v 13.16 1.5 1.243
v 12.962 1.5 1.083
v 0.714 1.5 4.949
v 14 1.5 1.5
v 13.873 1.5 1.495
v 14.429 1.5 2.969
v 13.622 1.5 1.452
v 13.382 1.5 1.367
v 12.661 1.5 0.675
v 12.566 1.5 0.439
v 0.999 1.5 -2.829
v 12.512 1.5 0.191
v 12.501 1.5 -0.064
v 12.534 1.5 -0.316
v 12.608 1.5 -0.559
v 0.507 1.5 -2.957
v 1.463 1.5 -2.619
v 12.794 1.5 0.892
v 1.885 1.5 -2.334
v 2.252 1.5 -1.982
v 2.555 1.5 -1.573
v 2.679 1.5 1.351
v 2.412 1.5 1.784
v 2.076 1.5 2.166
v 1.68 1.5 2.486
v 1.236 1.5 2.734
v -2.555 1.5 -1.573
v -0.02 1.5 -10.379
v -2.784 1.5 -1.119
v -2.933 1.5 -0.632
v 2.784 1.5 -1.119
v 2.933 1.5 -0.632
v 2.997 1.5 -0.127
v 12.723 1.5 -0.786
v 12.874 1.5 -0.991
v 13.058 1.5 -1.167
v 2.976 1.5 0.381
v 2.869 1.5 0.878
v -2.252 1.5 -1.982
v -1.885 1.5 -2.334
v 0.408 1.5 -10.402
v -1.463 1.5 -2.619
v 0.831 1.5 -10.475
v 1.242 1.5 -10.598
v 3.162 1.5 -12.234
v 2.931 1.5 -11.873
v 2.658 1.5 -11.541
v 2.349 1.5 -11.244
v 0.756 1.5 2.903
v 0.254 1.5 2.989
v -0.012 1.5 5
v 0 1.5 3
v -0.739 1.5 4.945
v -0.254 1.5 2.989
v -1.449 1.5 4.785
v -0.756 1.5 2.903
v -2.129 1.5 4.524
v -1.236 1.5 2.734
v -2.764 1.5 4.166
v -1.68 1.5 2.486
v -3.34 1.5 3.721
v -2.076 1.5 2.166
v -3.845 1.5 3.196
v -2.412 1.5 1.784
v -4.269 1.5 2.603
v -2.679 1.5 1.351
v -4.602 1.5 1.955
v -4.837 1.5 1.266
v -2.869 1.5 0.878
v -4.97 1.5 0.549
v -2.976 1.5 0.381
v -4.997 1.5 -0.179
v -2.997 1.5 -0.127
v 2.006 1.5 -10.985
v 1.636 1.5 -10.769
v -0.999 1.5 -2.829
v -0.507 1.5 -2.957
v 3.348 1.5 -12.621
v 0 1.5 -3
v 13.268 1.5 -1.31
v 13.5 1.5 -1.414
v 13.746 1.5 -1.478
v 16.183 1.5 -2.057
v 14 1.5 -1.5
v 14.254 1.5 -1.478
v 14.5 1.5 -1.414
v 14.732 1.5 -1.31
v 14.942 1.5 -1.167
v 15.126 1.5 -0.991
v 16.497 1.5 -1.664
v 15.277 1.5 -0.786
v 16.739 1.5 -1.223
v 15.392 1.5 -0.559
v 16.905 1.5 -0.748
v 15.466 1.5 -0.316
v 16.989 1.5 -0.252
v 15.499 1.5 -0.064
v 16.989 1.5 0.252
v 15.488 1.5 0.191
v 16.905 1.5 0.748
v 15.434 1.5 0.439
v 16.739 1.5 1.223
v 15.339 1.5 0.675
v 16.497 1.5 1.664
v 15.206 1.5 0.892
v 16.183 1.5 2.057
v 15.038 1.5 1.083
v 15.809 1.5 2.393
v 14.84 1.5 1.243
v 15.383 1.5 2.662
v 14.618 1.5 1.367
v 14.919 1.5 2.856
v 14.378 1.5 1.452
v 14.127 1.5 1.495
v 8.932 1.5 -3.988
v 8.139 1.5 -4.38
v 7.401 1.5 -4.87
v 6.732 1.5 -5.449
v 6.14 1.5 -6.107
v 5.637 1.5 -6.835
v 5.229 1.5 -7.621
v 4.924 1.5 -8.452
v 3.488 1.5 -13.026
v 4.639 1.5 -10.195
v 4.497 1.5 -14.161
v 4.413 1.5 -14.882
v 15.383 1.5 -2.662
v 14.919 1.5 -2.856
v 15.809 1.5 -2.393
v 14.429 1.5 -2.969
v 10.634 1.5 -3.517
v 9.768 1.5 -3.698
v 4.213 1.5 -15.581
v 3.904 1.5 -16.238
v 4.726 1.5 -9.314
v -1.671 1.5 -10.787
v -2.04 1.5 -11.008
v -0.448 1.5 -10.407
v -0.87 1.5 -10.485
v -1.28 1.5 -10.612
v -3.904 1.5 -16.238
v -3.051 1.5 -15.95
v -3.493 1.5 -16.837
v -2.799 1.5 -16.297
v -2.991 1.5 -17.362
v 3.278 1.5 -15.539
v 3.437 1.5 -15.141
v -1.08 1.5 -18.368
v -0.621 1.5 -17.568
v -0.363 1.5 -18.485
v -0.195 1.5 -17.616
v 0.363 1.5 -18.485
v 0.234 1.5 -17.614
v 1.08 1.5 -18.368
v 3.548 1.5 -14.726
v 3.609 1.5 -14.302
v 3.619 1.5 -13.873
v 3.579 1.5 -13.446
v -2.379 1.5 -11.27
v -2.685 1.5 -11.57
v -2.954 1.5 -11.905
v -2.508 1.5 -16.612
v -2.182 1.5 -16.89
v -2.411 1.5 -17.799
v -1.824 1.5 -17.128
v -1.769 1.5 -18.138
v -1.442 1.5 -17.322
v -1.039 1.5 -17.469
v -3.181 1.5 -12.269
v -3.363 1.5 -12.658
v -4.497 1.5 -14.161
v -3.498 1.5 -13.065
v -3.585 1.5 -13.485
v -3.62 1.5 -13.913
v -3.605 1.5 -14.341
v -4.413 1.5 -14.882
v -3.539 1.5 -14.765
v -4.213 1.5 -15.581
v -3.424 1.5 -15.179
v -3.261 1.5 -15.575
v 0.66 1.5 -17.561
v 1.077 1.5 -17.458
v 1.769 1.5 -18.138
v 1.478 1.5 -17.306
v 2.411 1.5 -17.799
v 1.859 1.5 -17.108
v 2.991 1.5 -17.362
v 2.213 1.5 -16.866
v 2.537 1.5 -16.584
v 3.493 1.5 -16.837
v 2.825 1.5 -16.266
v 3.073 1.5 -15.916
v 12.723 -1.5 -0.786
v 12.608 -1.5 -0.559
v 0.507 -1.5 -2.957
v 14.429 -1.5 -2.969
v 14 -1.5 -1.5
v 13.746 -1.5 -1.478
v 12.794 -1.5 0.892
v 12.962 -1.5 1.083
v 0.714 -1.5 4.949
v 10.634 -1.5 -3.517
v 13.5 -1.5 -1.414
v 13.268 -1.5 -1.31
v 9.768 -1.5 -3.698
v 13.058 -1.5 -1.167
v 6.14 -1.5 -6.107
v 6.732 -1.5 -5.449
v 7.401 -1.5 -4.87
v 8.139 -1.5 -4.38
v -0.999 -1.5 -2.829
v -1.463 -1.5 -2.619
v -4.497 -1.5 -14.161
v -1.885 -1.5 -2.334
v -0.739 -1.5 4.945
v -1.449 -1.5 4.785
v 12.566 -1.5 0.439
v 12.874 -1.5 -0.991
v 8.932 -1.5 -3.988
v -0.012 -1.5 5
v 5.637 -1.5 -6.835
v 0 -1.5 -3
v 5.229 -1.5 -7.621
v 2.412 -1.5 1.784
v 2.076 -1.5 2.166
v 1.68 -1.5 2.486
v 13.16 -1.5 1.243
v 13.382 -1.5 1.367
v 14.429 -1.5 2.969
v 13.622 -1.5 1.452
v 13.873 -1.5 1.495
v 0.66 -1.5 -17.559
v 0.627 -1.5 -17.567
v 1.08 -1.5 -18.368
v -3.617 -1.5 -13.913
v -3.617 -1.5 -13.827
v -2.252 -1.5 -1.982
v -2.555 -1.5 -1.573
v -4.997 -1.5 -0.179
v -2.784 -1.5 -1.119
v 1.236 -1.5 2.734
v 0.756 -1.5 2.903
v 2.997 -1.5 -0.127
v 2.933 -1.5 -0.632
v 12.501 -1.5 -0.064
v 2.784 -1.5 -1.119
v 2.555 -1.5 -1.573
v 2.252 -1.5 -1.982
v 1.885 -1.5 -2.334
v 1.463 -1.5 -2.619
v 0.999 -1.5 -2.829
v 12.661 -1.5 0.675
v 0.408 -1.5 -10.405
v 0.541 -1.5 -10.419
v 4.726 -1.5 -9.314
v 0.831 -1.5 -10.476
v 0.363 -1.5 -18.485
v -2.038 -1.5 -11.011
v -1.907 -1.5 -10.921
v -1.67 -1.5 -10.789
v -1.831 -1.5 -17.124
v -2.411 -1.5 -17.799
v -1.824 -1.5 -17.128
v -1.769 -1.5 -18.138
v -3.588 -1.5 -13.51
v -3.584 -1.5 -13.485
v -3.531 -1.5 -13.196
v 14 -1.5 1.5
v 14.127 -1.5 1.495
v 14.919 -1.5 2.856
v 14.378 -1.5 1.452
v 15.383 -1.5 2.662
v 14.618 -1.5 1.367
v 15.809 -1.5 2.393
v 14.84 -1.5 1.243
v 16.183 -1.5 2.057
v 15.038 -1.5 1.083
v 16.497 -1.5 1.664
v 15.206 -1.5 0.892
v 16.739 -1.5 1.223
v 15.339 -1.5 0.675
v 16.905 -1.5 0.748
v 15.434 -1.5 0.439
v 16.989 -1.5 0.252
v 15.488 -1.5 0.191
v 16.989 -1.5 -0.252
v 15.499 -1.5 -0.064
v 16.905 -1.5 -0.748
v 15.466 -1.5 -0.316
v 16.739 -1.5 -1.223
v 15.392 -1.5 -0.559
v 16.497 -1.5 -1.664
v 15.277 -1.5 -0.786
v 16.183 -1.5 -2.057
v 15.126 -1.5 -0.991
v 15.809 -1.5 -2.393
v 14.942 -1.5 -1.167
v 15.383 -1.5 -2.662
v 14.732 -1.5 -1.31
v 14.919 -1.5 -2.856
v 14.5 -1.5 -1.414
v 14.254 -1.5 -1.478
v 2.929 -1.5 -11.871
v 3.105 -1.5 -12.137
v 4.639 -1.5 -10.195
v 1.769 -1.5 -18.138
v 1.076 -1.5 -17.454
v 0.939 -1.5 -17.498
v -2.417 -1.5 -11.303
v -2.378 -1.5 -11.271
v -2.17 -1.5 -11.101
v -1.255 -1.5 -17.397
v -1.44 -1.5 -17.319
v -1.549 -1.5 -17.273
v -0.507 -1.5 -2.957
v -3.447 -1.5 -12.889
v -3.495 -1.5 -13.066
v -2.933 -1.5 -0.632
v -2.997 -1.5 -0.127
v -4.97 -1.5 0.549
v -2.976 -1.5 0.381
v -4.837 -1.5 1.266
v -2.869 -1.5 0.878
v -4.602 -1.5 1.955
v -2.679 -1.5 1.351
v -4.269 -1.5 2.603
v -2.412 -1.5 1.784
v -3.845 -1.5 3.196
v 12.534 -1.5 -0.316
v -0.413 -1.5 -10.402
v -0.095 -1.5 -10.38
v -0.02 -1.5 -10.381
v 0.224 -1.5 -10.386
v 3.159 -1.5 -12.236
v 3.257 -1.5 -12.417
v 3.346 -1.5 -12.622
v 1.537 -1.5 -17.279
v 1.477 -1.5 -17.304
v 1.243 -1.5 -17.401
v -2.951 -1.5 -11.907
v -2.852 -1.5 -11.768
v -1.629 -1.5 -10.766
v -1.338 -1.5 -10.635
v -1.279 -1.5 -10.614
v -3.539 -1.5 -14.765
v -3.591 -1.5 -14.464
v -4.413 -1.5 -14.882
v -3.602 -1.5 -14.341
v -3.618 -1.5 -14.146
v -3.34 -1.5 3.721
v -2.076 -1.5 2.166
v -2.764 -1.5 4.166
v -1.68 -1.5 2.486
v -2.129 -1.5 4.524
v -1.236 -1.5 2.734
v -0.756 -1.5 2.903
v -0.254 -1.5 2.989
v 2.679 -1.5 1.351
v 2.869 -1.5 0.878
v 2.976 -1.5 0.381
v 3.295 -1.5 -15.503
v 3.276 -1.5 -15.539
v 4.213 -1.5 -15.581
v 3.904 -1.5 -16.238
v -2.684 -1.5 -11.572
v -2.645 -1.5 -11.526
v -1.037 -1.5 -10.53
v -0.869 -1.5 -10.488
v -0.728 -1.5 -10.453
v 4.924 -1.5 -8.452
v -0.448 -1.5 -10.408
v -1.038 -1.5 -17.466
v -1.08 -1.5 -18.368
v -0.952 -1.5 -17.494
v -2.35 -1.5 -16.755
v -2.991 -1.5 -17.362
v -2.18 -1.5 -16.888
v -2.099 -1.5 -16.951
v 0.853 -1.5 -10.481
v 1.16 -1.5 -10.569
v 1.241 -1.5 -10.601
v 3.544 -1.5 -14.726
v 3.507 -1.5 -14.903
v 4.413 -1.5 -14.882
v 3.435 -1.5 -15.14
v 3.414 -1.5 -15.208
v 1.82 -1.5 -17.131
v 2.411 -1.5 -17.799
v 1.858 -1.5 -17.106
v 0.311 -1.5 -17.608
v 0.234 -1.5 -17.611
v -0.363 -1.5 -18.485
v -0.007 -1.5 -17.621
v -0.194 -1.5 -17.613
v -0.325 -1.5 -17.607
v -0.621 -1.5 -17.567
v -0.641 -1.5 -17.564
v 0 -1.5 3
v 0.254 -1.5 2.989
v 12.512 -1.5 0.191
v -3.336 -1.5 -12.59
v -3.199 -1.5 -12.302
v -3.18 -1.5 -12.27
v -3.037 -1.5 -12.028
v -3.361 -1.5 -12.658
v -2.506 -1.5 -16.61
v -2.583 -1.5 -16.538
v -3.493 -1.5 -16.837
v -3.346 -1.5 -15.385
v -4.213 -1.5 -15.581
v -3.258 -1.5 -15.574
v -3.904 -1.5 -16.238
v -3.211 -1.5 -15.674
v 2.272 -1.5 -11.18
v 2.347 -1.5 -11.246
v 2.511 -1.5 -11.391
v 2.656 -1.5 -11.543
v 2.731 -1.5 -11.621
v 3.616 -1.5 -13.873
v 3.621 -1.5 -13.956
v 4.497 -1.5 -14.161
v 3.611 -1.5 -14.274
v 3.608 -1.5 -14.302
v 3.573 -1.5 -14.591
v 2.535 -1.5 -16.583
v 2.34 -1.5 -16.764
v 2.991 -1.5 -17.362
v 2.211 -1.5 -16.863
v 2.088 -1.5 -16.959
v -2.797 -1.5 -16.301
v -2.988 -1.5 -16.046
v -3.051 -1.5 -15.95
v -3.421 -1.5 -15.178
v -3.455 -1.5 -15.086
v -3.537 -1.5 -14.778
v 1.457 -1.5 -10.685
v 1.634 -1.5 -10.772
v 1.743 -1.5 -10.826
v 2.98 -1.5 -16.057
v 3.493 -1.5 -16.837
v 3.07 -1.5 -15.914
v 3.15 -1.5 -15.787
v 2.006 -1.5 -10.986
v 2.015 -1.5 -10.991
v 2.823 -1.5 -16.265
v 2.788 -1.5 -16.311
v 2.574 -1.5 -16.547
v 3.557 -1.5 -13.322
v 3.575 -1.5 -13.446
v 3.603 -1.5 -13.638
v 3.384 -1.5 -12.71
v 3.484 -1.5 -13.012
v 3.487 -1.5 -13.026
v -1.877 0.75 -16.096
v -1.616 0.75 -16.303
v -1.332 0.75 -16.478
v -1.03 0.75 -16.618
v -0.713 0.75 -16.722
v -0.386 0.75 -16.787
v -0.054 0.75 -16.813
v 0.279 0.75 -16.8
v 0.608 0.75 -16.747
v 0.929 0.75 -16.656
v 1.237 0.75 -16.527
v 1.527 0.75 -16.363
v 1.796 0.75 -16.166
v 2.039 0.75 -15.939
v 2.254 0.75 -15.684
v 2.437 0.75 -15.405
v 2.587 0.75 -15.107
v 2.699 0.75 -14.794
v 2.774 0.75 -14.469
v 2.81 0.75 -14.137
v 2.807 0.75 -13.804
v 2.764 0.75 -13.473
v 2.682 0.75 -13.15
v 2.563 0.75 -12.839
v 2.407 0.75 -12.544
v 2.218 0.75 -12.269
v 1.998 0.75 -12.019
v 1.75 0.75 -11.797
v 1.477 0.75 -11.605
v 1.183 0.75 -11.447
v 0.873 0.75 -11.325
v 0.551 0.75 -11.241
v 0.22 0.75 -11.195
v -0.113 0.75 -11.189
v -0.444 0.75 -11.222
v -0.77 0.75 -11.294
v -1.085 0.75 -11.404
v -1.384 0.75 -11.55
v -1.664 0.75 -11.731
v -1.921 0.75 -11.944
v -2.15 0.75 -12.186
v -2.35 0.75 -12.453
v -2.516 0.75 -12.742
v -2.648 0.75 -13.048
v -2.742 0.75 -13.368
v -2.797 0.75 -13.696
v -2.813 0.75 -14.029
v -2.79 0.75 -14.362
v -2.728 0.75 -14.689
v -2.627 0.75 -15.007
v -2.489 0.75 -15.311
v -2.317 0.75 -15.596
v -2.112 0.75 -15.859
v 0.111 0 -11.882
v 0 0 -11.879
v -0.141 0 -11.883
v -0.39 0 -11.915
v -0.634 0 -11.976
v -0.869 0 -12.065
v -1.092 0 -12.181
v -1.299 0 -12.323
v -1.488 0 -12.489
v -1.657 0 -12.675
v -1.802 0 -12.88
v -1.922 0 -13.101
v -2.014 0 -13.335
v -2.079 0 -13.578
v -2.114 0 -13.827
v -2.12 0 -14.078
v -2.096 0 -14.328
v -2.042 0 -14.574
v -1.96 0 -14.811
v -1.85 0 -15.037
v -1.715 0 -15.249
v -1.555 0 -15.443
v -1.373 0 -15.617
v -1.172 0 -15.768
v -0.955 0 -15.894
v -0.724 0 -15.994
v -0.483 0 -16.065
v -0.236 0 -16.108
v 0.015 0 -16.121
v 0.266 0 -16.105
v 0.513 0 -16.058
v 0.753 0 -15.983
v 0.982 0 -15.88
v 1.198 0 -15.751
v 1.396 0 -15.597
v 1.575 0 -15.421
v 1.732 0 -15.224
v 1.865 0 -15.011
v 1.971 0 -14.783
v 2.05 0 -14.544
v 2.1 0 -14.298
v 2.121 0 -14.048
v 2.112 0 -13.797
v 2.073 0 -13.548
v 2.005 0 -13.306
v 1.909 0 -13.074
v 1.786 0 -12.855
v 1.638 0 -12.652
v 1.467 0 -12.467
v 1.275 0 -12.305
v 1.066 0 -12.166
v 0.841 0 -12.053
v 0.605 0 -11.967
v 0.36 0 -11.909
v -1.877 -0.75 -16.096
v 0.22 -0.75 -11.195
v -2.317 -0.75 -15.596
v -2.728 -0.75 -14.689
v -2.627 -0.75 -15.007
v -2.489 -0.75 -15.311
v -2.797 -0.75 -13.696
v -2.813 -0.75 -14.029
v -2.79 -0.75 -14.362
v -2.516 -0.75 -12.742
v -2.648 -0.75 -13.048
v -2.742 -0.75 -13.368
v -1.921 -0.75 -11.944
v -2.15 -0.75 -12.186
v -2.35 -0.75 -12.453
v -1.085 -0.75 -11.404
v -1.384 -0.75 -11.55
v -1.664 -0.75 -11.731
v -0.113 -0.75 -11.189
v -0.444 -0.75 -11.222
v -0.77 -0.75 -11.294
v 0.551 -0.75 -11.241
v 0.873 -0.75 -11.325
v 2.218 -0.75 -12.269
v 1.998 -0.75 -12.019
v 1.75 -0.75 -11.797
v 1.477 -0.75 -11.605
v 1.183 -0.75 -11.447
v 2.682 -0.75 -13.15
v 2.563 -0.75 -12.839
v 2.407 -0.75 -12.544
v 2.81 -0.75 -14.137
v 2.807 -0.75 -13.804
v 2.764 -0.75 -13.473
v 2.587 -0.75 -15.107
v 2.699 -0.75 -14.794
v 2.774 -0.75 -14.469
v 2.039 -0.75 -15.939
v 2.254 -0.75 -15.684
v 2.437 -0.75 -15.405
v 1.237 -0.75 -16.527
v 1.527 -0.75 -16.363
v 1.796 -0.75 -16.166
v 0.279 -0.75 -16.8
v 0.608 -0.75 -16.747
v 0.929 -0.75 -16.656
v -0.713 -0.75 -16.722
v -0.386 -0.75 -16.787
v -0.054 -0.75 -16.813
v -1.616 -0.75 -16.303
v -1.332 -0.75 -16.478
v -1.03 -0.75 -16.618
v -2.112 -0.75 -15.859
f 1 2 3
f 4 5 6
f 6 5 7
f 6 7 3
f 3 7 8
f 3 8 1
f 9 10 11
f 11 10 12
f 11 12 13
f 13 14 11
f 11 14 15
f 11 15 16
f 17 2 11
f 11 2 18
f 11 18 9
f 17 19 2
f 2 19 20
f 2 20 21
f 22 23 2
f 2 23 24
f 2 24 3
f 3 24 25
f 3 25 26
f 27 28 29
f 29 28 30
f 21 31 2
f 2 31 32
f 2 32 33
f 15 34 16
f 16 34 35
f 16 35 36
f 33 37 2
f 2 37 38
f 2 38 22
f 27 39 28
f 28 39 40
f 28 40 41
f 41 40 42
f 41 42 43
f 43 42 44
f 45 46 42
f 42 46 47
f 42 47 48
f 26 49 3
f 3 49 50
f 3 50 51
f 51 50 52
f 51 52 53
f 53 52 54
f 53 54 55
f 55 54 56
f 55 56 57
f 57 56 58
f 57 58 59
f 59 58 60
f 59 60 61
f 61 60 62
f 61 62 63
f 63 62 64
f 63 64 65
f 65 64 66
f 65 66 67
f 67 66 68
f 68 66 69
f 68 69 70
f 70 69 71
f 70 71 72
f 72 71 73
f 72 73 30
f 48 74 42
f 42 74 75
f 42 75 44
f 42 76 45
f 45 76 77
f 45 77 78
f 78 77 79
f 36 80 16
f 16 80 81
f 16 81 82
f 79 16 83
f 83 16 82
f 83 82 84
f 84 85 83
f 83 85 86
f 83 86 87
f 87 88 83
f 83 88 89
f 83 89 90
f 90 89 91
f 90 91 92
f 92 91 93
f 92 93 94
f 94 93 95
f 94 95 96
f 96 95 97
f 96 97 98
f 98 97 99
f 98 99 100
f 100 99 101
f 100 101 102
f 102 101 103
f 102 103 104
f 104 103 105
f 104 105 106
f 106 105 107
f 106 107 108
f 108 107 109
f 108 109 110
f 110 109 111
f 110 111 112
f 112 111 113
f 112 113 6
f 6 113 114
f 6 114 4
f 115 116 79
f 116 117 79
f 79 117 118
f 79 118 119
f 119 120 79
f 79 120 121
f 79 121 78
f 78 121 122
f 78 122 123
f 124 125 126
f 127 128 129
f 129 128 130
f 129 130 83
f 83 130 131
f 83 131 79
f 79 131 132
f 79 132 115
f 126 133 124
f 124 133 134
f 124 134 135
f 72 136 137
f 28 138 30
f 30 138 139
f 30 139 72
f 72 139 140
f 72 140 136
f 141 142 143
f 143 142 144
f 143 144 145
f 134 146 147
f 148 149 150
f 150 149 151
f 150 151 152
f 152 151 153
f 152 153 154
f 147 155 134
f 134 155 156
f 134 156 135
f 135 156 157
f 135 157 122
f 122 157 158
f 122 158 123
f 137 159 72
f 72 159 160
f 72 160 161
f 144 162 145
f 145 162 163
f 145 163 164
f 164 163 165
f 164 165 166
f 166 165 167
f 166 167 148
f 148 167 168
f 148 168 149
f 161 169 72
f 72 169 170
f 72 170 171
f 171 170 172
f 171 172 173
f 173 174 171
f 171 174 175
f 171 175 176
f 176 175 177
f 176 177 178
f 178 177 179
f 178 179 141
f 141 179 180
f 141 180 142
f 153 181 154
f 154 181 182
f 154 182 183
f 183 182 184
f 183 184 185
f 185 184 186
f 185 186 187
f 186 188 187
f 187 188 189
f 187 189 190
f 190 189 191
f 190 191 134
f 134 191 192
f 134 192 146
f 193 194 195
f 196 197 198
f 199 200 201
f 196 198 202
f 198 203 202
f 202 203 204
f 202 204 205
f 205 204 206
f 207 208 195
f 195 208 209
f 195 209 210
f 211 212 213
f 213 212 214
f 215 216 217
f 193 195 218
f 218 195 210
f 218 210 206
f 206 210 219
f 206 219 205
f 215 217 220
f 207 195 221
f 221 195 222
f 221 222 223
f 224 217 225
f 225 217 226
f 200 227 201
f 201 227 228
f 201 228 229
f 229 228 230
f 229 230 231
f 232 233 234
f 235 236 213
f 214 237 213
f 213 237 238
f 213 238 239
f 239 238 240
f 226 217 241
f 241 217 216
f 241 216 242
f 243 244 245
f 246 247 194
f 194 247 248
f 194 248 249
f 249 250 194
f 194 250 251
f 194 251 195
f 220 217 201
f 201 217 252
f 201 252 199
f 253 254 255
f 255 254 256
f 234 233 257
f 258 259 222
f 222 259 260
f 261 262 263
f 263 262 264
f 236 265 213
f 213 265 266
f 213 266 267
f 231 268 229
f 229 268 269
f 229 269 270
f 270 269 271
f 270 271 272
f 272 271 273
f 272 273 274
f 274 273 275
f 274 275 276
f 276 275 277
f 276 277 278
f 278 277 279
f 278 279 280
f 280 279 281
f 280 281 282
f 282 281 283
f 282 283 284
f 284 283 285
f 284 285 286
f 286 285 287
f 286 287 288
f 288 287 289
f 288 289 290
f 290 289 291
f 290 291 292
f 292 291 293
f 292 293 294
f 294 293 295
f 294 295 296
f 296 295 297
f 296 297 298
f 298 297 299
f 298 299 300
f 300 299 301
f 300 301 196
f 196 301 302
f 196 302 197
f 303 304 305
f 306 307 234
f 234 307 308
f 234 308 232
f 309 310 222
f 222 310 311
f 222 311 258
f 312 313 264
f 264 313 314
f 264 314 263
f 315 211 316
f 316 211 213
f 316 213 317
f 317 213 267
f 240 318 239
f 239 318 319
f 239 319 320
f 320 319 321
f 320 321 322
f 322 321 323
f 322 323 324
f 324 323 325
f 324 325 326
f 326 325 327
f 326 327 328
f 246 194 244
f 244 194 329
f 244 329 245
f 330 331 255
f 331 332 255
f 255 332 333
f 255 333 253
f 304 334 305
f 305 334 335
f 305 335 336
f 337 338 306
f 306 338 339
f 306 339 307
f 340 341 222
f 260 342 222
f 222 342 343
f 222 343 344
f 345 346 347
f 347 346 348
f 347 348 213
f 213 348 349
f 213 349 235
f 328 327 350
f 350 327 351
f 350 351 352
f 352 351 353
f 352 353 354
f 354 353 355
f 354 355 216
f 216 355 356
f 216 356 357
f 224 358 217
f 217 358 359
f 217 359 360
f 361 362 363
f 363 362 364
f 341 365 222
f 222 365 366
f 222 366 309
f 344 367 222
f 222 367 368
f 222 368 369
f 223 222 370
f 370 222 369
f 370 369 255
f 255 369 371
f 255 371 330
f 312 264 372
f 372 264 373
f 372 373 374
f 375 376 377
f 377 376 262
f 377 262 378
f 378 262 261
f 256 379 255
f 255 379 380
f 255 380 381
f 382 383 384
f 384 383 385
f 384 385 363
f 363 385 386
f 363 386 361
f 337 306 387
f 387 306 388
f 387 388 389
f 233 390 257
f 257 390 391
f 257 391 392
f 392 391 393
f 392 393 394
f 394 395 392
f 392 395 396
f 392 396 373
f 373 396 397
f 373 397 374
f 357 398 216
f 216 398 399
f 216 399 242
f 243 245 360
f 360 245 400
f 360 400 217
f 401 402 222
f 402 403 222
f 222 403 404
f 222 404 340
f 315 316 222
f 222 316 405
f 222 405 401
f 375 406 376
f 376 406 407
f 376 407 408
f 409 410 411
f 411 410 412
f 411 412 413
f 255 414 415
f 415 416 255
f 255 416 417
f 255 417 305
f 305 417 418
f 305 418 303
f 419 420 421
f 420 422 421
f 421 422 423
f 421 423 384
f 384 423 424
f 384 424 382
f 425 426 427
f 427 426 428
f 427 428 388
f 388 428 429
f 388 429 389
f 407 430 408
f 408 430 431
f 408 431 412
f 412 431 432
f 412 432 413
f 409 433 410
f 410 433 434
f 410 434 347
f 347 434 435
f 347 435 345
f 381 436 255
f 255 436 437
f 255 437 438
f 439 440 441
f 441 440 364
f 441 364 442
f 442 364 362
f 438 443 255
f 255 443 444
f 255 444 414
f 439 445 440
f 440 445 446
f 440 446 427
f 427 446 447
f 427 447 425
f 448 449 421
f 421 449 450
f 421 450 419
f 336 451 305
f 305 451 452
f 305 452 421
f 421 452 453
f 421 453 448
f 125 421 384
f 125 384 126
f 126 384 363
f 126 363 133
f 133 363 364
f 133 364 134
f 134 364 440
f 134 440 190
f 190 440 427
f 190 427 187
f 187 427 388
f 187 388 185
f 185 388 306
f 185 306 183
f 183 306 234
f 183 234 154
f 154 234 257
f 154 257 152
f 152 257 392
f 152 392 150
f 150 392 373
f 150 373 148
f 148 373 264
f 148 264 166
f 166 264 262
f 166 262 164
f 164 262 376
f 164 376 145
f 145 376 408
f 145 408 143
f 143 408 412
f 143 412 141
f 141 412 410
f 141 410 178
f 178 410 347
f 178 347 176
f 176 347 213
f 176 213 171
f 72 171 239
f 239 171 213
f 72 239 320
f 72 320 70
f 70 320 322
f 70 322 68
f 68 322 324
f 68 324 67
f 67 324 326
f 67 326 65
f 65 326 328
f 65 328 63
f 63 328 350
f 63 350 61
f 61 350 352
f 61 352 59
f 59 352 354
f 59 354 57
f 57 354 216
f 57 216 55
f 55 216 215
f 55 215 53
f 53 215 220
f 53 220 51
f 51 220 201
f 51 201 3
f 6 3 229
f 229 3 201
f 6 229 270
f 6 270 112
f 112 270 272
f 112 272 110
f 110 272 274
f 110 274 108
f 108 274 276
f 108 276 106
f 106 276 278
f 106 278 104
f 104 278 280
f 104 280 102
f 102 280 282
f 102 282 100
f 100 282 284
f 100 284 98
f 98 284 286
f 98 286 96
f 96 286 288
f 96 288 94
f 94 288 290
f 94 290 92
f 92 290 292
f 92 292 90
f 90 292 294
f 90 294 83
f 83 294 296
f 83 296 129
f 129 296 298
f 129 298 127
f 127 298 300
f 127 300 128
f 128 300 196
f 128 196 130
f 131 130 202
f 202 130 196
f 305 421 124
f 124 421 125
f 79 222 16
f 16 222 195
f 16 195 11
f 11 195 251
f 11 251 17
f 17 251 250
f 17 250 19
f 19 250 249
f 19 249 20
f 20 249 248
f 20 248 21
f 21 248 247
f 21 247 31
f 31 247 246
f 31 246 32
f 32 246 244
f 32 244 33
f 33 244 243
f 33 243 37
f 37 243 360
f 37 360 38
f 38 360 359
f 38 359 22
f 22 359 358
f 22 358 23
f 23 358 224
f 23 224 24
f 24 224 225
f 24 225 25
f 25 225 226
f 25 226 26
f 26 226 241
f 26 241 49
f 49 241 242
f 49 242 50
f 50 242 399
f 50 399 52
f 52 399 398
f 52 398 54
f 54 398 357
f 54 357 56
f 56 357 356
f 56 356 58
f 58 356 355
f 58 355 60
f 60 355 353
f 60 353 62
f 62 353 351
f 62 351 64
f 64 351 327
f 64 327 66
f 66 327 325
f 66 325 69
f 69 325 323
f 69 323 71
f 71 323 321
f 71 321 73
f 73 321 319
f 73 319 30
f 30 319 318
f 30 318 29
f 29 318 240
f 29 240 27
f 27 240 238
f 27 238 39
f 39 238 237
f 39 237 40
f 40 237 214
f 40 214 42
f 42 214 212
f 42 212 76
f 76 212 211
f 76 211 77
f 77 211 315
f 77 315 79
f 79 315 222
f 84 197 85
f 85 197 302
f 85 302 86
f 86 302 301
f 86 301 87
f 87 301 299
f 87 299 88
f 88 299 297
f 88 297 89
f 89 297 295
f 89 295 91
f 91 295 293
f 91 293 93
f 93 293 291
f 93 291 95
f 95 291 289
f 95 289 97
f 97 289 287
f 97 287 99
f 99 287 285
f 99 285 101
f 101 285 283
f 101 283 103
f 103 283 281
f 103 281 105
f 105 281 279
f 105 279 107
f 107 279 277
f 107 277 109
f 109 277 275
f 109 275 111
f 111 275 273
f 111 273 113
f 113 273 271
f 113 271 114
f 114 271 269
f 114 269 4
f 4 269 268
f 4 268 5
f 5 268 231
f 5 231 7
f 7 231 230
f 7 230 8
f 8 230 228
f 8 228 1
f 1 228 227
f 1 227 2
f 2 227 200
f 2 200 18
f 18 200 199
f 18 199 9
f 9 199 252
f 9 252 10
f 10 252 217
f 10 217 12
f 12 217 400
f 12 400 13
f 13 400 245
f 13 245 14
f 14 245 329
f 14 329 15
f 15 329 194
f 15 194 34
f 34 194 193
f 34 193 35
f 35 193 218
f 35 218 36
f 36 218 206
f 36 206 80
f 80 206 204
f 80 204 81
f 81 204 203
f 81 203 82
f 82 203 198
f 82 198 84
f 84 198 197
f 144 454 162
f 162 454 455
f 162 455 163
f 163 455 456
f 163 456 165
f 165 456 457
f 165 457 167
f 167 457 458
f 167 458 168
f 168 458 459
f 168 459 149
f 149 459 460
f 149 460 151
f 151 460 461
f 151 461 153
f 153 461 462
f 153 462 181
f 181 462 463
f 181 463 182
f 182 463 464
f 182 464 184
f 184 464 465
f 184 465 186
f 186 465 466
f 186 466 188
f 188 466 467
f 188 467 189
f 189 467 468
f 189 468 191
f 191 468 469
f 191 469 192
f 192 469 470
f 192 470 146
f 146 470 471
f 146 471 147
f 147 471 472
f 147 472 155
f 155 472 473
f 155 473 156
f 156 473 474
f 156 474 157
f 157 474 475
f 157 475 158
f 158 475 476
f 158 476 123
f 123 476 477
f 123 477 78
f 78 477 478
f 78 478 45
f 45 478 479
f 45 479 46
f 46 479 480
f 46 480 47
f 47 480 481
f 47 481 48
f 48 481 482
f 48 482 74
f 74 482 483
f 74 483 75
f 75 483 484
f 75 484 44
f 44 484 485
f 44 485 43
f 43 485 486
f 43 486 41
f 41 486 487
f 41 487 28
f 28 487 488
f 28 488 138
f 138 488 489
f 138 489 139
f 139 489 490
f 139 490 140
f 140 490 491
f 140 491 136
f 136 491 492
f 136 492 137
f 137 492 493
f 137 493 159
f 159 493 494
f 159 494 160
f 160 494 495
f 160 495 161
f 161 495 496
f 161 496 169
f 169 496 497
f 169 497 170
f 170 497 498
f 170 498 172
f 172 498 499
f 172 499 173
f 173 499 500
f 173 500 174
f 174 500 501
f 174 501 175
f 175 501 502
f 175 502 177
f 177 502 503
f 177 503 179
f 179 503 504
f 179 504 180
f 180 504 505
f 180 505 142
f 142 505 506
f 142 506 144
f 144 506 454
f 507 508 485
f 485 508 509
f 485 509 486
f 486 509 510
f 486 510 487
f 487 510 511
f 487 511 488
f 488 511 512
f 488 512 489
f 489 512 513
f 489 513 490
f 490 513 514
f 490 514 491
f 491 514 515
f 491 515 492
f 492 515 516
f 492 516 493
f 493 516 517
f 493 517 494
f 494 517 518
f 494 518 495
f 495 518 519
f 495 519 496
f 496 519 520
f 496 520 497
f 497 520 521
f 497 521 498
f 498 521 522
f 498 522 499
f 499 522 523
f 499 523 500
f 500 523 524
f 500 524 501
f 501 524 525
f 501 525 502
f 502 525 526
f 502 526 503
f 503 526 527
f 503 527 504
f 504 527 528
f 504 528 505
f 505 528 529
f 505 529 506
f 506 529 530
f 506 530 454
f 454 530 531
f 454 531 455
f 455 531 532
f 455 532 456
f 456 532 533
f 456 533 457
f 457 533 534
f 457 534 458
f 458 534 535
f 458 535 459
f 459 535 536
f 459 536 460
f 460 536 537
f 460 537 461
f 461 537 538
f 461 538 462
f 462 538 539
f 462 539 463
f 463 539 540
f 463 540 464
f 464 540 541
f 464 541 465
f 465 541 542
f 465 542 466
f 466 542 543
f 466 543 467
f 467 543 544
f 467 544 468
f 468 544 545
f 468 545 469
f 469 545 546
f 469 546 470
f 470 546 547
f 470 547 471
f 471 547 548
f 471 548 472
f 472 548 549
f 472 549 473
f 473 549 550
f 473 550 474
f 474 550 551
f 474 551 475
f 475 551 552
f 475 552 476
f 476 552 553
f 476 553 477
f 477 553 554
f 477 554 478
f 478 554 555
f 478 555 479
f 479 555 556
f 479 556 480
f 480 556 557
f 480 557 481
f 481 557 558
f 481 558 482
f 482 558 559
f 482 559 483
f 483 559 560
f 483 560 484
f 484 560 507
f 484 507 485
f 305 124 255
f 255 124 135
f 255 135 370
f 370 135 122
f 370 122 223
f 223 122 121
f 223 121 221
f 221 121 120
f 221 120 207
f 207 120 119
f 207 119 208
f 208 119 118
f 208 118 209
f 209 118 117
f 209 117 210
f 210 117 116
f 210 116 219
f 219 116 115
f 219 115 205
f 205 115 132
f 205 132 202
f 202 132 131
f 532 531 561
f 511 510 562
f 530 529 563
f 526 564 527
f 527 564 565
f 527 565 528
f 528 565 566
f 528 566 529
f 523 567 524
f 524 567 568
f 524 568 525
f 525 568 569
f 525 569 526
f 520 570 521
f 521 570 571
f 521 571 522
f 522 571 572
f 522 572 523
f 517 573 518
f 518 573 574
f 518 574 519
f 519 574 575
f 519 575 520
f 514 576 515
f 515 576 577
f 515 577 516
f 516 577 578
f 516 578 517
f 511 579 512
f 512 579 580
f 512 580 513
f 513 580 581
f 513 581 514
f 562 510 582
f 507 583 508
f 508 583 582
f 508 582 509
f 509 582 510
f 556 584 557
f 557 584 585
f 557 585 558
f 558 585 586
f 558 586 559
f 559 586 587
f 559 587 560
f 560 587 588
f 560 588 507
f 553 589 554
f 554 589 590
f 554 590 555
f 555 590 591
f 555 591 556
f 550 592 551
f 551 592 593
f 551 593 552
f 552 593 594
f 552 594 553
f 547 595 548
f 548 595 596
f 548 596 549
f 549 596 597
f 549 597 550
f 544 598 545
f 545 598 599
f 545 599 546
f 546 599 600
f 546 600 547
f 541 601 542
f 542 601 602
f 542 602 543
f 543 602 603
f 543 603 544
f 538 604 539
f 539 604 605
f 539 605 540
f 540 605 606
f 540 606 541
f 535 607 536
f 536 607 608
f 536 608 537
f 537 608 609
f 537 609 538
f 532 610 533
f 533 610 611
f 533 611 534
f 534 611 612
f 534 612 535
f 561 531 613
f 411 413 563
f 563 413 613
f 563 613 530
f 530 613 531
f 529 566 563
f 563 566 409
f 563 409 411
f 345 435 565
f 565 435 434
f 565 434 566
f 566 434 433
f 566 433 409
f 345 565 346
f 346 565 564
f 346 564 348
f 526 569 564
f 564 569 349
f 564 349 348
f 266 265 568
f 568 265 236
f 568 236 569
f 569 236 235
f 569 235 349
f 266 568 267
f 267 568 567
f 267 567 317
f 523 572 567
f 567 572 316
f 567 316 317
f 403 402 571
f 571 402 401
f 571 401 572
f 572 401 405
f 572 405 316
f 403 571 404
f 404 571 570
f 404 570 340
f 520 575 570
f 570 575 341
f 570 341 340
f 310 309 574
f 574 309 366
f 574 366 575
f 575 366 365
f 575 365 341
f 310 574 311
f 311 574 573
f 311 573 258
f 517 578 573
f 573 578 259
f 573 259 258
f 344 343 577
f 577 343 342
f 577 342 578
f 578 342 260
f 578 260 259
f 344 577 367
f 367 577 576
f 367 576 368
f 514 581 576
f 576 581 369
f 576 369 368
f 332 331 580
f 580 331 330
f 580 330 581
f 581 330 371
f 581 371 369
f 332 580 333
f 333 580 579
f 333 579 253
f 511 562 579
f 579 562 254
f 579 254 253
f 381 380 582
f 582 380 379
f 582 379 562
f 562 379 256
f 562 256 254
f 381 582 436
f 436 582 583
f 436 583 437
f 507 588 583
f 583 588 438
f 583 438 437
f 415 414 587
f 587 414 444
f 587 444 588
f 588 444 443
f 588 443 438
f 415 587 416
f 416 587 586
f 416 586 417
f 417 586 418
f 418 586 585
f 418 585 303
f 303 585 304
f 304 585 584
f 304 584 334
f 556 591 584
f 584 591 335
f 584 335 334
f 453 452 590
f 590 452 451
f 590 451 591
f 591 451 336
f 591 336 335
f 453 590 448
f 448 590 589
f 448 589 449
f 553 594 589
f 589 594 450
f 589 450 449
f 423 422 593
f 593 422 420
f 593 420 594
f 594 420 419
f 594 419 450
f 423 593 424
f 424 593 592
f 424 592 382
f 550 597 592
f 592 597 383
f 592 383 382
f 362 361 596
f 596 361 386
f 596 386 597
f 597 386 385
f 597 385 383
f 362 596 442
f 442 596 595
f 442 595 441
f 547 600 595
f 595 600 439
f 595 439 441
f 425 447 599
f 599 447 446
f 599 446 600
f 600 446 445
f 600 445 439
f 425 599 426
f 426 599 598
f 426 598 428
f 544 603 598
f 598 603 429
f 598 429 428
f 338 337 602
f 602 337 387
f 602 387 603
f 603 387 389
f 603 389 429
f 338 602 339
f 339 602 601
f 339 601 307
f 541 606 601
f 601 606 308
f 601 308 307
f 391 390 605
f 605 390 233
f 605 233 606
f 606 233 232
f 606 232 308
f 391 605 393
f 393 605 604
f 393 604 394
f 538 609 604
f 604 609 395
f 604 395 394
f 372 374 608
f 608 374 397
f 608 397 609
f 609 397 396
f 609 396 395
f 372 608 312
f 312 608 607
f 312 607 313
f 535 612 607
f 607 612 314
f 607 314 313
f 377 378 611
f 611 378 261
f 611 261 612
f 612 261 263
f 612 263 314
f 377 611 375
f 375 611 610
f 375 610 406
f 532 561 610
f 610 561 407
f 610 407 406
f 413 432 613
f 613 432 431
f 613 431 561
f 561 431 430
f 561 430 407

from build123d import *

# Parameters (mm, degrees)
SKETCH1_R           = 3
SKETCH1_R_2         = 1.5
BOSS_EXTRUDE1_DEPTH = 1.5
FILLET1_R           = 7


with BuildPart() as part:
    # Sketch1 → Boss-Extrude1 (new, symmetric)
    with BuildSketch(Plane(origin=(0, 0, 0), x_dir=(1, 0, 0), z_dir=(0, 1, 0))):
        with BuildLine():
            Line((-4.497129186, 14.160714286), (-4.996810207, 0.178571429))
            ThreePointArc((-4.996810207, 0.178571429), (-3.340250682, -3.720581323), (0.714285714, -4.948716593))
            Line((0.714285714, -4.948716593), (14.428571429, -2.969229956))
            ThreePointArc((14.428571429, -2.969229956), (17, 0), (14.428571429, 2.969229956))
            Line((14.428571429, 2.969229956), (4.847659913, 4.352115416))
            Line((4.847659913, 4.352115416), (4.497129186, 14.160714286))
            ThreePointArc((4.497129186, 14.160714286), (0, 18.5), (-4.497129186, 14.160714286))
        make_face()
        with Locations(Location((0, 0, 0), (0, 0, 270))):
            Circle(SKETCH1_R, mode=Mode.SUBTRACT)
        with Locations(Location((14, 0, 0), (0, 0, 270))):
            Circle(SKETCH1_R_2, mode=Mode.SUBTRACT)
    extrude(amount=BOSS_EXTRUDE1_DEPTH, both=True)

    # Cut-Loft1: read off the stored shape, not the designer's step
    # Cut-Loft1: loft between two sections, ruled curve by curve
    cut_loft1_from = [
        Edge.make_bspline([(-3.051453725, 1.5, -15.949985604), (0.848517484, 1.5, -22.052893053), (6.951424933, 1.5, -18.152921845), (3.051453725, 1.5, -12.050014396), (-0.848517484, 1.5, -5.947106947), (-6.951424933, 1.5, -9.847078155), (-3.051453725, 1.5, -15.949985604)], [0, 0, 0, 0, 0.5, 0.5, 0.5, 1, 1, 1, 1], 3, [1, 0.333333333, 0.333333333, 1, 0.333333333, 0.333333333, 1]),
    ]
    cut_loft1_to = [
        Edge.make_bspline([(-1.172439921, 0, -15.767875328), (2.363310734, 0, -18.11275517), (4.708190576, 0, -14.577004515), (1.172439921, 0, -12.232124672), (-2.363310734, 0, -9.88724483), (-4.708190576, 0, -13.422995485), (-1.172439921, 0, -15.767875328)], [0, 0, 0, 0, 0.5, 0.5, 0.5, 1, 1, 1, 1], 3, [1, 0.333333333, 0.333333333, 1, 0.333333333, 0.333333333, 1]),
    ]
    cut_loft1 = Solid(Shell([*[Face.make_surface_from_curves(cut_loft1_from[k], cut_loft1_to[k]) for k in range(1)], Face(Wire(cut_loft1_from)), Face(Wire(cut_loft1_to))]))
    add(cut_loft1, mode=Mode.SUBTRACT)

    # Fillet1
    fillet1_edges = [part.edges().sort_by_distance(p)[0] for p in [
        (4.847659913, 0, -4.352115416),
    ]]
    fillet(fillet1_edges, radius=FILLET1_R)

    # Mirror1: Cut-Loft1 across plane
    add(cut_loft1.mirror(Plane.ZX), mode=Mode.SUBTRACT)


solid = part.part
